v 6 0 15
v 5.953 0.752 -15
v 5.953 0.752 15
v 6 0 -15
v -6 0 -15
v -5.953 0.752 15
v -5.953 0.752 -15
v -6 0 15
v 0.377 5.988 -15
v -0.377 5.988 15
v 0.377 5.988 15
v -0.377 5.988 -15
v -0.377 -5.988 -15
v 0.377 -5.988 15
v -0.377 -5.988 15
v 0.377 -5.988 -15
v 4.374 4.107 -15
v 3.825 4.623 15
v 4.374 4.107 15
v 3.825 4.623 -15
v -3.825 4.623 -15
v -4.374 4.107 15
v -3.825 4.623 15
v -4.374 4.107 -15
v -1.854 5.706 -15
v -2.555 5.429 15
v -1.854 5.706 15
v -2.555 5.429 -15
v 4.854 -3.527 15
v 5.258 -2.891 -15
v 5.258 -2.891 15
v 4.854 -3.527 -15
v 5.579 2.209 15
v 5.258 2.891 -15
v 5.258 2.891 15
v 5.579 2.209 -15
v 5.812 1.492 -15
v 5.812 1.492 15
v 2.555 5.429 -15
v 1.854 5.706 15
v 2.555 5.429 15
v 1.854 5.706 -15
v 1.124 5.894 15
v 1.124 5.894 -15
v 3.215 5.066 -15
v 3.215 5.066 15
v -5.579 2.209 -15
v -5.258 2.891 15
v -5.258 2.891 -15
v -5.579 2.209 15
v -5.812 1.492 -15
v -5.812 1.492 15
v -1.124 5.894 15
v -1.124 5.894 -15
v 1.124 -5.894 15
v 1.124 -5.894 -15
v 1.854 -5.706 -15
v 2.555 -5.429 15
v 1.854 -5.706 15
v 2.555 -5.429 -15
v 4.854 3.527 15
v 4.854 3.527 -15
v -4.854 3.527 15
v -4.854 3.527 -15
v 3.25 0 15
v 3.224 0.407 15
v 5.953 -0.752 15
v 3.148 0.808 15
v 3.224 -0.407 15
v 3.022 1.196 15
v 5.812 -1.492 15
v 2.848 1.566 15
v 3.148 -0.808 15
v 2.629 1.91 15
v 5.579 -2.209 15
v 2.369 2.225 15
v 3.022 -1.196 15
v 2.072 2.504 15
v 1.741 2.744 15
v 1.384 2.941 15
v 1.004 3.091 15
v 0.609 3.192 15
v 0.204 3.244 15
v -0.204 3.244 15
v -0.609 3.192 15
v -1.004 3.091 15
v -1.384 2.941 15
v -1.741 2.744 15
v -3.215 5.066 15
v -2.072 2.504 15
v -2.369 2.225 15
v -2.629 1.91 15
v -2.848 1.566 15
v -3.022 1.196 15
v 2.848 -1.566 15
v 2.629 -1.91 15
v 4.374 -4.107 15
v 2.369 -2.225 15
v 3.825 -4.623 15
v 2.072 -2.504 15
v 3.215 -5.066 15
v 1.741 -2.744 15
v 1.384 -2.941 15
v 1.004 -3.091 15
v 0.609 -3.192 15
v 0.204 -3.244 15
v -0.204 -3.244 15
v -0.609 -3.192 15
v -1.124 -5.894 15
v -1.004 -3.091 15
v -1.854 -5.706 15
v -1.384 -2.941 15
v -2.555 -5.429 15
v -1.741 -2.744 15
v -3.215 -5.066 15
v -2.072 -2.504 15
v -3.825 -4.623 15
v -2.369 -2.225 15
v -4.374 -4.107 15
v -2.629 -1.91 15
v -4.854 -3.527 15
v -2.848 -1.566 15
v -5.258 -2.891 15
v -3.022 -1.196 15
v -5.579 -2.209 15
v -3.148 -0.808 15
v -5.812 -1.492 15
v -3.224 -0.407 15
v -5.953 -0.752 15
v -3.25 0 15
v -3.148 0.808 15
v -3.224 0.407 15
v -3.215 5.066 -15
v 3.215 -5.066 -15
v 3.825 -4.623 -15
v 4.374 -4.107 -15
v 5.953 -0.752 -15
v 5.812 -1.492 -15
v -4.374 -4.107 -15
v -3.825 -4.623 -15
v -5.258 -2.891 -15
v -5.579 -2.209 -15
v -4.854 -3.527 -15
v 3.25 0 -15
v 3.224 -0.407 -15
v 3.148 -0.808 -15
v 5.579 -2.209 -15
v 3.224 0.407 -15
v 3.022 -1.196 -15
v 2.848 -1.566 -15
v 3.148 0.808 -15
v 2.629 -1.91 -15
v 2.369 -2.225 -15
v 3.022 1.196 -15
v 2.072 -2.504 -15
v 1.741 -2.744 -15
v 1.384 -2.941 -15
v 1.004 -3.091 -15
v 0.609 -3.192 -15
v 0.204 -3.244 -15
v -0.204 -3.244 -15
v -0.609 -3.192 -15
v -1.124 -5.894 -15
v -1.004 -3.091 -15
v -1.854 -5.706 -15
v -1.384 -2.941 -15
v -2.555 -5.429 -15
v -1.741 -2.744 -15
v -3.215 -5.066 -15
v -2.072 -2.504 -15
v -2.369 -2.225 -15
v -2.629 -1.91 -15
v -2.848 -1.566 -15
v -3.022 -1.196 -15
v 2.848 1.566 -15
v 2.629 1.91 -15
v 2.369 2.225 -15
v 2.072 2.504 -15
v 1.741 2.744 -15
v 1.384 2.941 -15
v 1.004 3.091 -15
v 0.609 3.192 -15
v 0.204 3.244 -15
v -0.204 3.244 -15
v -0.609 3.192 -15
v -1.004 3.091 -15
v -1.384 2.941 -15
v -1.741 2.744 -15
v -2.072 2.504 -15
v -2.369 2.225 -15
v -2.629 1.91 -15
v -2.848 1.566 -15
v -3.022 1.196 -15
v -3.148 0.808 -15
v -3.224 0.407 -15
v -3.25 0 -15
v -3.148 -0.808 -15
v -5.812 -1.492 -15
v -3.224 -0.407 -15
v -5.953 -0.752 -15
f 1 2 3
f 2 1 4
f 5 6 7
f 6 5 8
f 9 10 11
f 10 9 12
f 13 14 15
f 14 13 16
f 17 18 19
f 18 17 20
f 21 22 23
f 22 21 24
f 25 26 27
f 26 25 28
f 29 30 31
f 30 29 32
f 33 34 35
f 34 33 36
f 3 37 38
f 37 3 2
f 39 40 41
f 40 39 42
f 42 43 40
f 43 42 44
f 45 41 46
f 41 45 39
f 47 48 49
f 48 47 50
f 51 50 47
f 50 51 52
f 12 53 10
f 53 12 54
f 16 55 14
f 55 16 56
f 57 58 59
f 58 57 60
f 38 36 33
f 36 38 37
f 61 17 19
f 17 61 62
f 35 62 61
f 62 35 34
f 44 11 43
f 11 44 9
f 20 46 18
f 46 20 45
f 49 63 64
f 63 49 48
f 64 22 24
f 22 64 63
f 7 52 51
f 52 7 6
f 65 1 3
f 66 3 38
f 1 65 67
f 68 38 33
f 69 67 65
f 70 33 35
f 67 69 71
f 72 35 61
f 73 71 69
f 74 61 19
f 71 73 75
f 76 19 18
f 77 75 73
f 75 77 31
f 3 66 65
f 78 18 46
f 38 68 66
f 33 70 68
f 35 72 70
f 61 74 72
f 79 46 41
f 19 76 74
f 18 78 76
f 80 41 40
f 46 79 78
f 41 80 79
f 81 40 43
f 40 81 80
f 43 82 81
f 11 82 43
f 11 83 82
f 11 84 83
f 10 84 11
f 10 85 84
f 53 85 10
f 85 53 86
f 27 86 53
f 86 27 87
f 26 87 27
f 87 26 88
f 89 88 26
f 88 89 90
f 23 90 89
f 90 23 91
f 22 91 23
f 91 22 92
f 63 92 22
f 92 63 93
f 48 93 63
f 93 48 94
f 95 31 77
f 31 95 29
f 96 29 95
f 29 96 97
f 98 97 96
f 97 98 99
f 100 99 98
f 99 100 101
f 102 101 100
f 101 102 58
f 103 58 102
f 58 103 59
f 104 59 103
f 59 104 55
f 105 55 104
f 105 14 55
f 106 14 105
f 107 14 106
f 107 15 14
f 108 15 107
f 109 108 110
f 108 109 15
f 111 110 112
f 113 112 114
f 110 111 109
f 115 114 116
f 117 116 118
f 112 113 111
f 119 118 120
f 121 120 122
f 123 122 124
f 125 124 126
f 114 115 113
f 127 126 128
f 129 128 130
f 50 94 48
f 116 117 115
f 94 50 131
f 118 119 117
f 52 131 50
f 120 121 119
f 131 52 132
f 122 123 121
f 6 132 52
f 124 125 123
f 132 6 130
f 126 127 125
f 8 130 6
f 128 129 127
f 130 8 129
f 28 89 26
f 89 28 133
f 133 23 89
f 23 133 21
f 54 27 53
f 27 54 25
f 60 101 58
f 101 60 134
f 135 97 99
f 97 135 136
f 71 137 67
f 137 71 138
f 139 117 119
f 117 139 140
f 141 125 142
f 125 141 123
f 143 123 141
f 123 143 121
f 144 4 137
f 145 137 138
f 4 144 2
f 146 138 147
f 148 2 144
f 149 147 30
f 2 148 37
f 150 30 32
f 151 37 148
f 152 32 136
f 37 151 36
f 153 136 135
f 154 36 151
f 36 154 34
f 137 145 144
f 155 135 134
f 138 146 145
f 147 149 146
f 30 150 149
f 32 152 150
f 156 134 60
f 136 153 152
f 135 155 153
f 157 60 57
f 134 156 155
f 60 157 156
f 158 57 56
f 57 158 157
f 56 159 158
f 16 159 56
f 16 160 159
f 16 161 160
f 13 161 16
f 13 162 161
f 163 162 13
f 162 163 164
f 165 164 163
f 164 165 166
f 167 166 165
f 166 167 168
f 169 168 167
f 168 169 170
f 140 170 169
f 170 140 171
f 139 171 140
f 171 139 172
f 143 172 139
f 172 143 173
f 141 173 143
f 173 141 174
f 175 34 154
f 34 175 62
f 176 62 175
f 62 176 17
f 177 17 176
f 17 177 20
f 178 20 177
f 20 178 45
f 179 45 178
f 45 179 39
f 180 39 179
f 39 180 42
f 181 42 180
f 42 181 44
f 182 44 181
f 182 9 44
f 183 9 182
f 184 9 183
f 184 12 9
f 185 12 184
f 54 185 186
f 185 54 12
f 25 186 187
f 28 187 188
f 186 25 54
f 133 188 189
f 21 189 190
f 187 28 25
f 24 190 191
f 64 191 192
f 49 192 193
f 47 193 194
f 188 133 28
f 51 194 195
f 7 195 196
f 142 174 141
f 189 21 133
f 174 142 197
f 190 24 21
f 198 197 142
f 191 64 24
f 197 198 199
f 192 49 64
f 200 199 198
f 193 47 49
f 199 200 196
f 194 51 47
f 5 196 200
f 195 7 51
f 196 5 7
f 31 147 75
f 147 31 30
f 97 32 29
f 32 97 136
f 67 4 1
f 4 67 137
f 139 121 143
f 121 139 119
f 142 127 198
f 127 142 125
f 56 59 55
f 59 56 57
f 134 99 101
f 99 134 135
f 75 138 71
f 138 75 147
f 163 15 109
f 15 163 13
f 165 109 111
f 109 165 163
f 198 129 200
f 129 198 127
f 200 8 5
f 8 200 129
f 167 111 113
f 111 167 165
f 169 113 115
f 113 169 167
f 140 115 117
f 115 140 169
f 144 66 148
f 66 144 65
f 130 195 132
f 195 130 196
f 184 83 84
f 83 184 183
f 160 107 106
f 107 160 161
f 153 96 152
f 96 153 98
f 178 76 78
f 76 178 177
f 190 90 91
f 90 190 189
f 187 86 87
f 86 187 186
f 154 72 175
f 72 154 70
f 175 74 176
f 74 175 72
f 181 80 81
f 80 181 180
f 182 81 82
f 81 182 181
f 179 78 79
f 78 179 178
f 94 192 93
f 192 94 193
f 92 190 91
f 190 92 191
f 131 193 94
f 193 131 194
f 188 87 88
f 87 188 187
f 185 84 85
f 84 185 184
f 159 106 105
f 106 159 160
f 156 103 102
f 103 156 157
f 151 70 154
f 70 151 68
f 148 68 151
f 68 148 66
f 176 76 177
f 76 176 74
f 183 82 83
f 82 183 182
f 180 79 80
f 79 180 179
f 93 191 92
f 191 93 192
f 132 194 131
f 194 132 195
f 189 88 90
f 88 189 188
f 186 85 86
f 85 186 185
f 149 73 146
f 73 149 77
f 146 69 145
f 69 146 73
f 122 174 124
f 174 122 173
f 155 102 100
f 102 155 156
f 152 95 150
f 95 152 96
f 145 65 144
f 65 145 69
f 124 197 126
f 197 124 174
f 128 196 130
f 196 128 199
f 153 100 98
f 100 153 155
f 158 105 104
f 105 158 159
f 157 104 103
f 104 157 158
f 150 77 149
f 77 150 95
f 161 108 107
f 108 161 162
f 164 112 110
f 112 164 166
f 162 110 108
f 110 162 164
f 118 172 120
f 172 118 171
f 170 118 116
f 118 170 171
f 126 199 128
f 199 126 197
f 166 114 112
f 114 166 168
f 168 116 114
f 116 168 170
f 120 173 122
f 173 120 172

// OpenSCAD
$fn = 50;


difference() {
	union() {
		translate(v = [0, 0, -15.0000000000]) {
			cylinder(h = 30, r = 6.0000000000);
		}
	}
	union() {
		translate(v = [0, 0, -100.0000000000]) {
			cylinder(h = 200, r = 3.2500000000);
		}
	}
}
